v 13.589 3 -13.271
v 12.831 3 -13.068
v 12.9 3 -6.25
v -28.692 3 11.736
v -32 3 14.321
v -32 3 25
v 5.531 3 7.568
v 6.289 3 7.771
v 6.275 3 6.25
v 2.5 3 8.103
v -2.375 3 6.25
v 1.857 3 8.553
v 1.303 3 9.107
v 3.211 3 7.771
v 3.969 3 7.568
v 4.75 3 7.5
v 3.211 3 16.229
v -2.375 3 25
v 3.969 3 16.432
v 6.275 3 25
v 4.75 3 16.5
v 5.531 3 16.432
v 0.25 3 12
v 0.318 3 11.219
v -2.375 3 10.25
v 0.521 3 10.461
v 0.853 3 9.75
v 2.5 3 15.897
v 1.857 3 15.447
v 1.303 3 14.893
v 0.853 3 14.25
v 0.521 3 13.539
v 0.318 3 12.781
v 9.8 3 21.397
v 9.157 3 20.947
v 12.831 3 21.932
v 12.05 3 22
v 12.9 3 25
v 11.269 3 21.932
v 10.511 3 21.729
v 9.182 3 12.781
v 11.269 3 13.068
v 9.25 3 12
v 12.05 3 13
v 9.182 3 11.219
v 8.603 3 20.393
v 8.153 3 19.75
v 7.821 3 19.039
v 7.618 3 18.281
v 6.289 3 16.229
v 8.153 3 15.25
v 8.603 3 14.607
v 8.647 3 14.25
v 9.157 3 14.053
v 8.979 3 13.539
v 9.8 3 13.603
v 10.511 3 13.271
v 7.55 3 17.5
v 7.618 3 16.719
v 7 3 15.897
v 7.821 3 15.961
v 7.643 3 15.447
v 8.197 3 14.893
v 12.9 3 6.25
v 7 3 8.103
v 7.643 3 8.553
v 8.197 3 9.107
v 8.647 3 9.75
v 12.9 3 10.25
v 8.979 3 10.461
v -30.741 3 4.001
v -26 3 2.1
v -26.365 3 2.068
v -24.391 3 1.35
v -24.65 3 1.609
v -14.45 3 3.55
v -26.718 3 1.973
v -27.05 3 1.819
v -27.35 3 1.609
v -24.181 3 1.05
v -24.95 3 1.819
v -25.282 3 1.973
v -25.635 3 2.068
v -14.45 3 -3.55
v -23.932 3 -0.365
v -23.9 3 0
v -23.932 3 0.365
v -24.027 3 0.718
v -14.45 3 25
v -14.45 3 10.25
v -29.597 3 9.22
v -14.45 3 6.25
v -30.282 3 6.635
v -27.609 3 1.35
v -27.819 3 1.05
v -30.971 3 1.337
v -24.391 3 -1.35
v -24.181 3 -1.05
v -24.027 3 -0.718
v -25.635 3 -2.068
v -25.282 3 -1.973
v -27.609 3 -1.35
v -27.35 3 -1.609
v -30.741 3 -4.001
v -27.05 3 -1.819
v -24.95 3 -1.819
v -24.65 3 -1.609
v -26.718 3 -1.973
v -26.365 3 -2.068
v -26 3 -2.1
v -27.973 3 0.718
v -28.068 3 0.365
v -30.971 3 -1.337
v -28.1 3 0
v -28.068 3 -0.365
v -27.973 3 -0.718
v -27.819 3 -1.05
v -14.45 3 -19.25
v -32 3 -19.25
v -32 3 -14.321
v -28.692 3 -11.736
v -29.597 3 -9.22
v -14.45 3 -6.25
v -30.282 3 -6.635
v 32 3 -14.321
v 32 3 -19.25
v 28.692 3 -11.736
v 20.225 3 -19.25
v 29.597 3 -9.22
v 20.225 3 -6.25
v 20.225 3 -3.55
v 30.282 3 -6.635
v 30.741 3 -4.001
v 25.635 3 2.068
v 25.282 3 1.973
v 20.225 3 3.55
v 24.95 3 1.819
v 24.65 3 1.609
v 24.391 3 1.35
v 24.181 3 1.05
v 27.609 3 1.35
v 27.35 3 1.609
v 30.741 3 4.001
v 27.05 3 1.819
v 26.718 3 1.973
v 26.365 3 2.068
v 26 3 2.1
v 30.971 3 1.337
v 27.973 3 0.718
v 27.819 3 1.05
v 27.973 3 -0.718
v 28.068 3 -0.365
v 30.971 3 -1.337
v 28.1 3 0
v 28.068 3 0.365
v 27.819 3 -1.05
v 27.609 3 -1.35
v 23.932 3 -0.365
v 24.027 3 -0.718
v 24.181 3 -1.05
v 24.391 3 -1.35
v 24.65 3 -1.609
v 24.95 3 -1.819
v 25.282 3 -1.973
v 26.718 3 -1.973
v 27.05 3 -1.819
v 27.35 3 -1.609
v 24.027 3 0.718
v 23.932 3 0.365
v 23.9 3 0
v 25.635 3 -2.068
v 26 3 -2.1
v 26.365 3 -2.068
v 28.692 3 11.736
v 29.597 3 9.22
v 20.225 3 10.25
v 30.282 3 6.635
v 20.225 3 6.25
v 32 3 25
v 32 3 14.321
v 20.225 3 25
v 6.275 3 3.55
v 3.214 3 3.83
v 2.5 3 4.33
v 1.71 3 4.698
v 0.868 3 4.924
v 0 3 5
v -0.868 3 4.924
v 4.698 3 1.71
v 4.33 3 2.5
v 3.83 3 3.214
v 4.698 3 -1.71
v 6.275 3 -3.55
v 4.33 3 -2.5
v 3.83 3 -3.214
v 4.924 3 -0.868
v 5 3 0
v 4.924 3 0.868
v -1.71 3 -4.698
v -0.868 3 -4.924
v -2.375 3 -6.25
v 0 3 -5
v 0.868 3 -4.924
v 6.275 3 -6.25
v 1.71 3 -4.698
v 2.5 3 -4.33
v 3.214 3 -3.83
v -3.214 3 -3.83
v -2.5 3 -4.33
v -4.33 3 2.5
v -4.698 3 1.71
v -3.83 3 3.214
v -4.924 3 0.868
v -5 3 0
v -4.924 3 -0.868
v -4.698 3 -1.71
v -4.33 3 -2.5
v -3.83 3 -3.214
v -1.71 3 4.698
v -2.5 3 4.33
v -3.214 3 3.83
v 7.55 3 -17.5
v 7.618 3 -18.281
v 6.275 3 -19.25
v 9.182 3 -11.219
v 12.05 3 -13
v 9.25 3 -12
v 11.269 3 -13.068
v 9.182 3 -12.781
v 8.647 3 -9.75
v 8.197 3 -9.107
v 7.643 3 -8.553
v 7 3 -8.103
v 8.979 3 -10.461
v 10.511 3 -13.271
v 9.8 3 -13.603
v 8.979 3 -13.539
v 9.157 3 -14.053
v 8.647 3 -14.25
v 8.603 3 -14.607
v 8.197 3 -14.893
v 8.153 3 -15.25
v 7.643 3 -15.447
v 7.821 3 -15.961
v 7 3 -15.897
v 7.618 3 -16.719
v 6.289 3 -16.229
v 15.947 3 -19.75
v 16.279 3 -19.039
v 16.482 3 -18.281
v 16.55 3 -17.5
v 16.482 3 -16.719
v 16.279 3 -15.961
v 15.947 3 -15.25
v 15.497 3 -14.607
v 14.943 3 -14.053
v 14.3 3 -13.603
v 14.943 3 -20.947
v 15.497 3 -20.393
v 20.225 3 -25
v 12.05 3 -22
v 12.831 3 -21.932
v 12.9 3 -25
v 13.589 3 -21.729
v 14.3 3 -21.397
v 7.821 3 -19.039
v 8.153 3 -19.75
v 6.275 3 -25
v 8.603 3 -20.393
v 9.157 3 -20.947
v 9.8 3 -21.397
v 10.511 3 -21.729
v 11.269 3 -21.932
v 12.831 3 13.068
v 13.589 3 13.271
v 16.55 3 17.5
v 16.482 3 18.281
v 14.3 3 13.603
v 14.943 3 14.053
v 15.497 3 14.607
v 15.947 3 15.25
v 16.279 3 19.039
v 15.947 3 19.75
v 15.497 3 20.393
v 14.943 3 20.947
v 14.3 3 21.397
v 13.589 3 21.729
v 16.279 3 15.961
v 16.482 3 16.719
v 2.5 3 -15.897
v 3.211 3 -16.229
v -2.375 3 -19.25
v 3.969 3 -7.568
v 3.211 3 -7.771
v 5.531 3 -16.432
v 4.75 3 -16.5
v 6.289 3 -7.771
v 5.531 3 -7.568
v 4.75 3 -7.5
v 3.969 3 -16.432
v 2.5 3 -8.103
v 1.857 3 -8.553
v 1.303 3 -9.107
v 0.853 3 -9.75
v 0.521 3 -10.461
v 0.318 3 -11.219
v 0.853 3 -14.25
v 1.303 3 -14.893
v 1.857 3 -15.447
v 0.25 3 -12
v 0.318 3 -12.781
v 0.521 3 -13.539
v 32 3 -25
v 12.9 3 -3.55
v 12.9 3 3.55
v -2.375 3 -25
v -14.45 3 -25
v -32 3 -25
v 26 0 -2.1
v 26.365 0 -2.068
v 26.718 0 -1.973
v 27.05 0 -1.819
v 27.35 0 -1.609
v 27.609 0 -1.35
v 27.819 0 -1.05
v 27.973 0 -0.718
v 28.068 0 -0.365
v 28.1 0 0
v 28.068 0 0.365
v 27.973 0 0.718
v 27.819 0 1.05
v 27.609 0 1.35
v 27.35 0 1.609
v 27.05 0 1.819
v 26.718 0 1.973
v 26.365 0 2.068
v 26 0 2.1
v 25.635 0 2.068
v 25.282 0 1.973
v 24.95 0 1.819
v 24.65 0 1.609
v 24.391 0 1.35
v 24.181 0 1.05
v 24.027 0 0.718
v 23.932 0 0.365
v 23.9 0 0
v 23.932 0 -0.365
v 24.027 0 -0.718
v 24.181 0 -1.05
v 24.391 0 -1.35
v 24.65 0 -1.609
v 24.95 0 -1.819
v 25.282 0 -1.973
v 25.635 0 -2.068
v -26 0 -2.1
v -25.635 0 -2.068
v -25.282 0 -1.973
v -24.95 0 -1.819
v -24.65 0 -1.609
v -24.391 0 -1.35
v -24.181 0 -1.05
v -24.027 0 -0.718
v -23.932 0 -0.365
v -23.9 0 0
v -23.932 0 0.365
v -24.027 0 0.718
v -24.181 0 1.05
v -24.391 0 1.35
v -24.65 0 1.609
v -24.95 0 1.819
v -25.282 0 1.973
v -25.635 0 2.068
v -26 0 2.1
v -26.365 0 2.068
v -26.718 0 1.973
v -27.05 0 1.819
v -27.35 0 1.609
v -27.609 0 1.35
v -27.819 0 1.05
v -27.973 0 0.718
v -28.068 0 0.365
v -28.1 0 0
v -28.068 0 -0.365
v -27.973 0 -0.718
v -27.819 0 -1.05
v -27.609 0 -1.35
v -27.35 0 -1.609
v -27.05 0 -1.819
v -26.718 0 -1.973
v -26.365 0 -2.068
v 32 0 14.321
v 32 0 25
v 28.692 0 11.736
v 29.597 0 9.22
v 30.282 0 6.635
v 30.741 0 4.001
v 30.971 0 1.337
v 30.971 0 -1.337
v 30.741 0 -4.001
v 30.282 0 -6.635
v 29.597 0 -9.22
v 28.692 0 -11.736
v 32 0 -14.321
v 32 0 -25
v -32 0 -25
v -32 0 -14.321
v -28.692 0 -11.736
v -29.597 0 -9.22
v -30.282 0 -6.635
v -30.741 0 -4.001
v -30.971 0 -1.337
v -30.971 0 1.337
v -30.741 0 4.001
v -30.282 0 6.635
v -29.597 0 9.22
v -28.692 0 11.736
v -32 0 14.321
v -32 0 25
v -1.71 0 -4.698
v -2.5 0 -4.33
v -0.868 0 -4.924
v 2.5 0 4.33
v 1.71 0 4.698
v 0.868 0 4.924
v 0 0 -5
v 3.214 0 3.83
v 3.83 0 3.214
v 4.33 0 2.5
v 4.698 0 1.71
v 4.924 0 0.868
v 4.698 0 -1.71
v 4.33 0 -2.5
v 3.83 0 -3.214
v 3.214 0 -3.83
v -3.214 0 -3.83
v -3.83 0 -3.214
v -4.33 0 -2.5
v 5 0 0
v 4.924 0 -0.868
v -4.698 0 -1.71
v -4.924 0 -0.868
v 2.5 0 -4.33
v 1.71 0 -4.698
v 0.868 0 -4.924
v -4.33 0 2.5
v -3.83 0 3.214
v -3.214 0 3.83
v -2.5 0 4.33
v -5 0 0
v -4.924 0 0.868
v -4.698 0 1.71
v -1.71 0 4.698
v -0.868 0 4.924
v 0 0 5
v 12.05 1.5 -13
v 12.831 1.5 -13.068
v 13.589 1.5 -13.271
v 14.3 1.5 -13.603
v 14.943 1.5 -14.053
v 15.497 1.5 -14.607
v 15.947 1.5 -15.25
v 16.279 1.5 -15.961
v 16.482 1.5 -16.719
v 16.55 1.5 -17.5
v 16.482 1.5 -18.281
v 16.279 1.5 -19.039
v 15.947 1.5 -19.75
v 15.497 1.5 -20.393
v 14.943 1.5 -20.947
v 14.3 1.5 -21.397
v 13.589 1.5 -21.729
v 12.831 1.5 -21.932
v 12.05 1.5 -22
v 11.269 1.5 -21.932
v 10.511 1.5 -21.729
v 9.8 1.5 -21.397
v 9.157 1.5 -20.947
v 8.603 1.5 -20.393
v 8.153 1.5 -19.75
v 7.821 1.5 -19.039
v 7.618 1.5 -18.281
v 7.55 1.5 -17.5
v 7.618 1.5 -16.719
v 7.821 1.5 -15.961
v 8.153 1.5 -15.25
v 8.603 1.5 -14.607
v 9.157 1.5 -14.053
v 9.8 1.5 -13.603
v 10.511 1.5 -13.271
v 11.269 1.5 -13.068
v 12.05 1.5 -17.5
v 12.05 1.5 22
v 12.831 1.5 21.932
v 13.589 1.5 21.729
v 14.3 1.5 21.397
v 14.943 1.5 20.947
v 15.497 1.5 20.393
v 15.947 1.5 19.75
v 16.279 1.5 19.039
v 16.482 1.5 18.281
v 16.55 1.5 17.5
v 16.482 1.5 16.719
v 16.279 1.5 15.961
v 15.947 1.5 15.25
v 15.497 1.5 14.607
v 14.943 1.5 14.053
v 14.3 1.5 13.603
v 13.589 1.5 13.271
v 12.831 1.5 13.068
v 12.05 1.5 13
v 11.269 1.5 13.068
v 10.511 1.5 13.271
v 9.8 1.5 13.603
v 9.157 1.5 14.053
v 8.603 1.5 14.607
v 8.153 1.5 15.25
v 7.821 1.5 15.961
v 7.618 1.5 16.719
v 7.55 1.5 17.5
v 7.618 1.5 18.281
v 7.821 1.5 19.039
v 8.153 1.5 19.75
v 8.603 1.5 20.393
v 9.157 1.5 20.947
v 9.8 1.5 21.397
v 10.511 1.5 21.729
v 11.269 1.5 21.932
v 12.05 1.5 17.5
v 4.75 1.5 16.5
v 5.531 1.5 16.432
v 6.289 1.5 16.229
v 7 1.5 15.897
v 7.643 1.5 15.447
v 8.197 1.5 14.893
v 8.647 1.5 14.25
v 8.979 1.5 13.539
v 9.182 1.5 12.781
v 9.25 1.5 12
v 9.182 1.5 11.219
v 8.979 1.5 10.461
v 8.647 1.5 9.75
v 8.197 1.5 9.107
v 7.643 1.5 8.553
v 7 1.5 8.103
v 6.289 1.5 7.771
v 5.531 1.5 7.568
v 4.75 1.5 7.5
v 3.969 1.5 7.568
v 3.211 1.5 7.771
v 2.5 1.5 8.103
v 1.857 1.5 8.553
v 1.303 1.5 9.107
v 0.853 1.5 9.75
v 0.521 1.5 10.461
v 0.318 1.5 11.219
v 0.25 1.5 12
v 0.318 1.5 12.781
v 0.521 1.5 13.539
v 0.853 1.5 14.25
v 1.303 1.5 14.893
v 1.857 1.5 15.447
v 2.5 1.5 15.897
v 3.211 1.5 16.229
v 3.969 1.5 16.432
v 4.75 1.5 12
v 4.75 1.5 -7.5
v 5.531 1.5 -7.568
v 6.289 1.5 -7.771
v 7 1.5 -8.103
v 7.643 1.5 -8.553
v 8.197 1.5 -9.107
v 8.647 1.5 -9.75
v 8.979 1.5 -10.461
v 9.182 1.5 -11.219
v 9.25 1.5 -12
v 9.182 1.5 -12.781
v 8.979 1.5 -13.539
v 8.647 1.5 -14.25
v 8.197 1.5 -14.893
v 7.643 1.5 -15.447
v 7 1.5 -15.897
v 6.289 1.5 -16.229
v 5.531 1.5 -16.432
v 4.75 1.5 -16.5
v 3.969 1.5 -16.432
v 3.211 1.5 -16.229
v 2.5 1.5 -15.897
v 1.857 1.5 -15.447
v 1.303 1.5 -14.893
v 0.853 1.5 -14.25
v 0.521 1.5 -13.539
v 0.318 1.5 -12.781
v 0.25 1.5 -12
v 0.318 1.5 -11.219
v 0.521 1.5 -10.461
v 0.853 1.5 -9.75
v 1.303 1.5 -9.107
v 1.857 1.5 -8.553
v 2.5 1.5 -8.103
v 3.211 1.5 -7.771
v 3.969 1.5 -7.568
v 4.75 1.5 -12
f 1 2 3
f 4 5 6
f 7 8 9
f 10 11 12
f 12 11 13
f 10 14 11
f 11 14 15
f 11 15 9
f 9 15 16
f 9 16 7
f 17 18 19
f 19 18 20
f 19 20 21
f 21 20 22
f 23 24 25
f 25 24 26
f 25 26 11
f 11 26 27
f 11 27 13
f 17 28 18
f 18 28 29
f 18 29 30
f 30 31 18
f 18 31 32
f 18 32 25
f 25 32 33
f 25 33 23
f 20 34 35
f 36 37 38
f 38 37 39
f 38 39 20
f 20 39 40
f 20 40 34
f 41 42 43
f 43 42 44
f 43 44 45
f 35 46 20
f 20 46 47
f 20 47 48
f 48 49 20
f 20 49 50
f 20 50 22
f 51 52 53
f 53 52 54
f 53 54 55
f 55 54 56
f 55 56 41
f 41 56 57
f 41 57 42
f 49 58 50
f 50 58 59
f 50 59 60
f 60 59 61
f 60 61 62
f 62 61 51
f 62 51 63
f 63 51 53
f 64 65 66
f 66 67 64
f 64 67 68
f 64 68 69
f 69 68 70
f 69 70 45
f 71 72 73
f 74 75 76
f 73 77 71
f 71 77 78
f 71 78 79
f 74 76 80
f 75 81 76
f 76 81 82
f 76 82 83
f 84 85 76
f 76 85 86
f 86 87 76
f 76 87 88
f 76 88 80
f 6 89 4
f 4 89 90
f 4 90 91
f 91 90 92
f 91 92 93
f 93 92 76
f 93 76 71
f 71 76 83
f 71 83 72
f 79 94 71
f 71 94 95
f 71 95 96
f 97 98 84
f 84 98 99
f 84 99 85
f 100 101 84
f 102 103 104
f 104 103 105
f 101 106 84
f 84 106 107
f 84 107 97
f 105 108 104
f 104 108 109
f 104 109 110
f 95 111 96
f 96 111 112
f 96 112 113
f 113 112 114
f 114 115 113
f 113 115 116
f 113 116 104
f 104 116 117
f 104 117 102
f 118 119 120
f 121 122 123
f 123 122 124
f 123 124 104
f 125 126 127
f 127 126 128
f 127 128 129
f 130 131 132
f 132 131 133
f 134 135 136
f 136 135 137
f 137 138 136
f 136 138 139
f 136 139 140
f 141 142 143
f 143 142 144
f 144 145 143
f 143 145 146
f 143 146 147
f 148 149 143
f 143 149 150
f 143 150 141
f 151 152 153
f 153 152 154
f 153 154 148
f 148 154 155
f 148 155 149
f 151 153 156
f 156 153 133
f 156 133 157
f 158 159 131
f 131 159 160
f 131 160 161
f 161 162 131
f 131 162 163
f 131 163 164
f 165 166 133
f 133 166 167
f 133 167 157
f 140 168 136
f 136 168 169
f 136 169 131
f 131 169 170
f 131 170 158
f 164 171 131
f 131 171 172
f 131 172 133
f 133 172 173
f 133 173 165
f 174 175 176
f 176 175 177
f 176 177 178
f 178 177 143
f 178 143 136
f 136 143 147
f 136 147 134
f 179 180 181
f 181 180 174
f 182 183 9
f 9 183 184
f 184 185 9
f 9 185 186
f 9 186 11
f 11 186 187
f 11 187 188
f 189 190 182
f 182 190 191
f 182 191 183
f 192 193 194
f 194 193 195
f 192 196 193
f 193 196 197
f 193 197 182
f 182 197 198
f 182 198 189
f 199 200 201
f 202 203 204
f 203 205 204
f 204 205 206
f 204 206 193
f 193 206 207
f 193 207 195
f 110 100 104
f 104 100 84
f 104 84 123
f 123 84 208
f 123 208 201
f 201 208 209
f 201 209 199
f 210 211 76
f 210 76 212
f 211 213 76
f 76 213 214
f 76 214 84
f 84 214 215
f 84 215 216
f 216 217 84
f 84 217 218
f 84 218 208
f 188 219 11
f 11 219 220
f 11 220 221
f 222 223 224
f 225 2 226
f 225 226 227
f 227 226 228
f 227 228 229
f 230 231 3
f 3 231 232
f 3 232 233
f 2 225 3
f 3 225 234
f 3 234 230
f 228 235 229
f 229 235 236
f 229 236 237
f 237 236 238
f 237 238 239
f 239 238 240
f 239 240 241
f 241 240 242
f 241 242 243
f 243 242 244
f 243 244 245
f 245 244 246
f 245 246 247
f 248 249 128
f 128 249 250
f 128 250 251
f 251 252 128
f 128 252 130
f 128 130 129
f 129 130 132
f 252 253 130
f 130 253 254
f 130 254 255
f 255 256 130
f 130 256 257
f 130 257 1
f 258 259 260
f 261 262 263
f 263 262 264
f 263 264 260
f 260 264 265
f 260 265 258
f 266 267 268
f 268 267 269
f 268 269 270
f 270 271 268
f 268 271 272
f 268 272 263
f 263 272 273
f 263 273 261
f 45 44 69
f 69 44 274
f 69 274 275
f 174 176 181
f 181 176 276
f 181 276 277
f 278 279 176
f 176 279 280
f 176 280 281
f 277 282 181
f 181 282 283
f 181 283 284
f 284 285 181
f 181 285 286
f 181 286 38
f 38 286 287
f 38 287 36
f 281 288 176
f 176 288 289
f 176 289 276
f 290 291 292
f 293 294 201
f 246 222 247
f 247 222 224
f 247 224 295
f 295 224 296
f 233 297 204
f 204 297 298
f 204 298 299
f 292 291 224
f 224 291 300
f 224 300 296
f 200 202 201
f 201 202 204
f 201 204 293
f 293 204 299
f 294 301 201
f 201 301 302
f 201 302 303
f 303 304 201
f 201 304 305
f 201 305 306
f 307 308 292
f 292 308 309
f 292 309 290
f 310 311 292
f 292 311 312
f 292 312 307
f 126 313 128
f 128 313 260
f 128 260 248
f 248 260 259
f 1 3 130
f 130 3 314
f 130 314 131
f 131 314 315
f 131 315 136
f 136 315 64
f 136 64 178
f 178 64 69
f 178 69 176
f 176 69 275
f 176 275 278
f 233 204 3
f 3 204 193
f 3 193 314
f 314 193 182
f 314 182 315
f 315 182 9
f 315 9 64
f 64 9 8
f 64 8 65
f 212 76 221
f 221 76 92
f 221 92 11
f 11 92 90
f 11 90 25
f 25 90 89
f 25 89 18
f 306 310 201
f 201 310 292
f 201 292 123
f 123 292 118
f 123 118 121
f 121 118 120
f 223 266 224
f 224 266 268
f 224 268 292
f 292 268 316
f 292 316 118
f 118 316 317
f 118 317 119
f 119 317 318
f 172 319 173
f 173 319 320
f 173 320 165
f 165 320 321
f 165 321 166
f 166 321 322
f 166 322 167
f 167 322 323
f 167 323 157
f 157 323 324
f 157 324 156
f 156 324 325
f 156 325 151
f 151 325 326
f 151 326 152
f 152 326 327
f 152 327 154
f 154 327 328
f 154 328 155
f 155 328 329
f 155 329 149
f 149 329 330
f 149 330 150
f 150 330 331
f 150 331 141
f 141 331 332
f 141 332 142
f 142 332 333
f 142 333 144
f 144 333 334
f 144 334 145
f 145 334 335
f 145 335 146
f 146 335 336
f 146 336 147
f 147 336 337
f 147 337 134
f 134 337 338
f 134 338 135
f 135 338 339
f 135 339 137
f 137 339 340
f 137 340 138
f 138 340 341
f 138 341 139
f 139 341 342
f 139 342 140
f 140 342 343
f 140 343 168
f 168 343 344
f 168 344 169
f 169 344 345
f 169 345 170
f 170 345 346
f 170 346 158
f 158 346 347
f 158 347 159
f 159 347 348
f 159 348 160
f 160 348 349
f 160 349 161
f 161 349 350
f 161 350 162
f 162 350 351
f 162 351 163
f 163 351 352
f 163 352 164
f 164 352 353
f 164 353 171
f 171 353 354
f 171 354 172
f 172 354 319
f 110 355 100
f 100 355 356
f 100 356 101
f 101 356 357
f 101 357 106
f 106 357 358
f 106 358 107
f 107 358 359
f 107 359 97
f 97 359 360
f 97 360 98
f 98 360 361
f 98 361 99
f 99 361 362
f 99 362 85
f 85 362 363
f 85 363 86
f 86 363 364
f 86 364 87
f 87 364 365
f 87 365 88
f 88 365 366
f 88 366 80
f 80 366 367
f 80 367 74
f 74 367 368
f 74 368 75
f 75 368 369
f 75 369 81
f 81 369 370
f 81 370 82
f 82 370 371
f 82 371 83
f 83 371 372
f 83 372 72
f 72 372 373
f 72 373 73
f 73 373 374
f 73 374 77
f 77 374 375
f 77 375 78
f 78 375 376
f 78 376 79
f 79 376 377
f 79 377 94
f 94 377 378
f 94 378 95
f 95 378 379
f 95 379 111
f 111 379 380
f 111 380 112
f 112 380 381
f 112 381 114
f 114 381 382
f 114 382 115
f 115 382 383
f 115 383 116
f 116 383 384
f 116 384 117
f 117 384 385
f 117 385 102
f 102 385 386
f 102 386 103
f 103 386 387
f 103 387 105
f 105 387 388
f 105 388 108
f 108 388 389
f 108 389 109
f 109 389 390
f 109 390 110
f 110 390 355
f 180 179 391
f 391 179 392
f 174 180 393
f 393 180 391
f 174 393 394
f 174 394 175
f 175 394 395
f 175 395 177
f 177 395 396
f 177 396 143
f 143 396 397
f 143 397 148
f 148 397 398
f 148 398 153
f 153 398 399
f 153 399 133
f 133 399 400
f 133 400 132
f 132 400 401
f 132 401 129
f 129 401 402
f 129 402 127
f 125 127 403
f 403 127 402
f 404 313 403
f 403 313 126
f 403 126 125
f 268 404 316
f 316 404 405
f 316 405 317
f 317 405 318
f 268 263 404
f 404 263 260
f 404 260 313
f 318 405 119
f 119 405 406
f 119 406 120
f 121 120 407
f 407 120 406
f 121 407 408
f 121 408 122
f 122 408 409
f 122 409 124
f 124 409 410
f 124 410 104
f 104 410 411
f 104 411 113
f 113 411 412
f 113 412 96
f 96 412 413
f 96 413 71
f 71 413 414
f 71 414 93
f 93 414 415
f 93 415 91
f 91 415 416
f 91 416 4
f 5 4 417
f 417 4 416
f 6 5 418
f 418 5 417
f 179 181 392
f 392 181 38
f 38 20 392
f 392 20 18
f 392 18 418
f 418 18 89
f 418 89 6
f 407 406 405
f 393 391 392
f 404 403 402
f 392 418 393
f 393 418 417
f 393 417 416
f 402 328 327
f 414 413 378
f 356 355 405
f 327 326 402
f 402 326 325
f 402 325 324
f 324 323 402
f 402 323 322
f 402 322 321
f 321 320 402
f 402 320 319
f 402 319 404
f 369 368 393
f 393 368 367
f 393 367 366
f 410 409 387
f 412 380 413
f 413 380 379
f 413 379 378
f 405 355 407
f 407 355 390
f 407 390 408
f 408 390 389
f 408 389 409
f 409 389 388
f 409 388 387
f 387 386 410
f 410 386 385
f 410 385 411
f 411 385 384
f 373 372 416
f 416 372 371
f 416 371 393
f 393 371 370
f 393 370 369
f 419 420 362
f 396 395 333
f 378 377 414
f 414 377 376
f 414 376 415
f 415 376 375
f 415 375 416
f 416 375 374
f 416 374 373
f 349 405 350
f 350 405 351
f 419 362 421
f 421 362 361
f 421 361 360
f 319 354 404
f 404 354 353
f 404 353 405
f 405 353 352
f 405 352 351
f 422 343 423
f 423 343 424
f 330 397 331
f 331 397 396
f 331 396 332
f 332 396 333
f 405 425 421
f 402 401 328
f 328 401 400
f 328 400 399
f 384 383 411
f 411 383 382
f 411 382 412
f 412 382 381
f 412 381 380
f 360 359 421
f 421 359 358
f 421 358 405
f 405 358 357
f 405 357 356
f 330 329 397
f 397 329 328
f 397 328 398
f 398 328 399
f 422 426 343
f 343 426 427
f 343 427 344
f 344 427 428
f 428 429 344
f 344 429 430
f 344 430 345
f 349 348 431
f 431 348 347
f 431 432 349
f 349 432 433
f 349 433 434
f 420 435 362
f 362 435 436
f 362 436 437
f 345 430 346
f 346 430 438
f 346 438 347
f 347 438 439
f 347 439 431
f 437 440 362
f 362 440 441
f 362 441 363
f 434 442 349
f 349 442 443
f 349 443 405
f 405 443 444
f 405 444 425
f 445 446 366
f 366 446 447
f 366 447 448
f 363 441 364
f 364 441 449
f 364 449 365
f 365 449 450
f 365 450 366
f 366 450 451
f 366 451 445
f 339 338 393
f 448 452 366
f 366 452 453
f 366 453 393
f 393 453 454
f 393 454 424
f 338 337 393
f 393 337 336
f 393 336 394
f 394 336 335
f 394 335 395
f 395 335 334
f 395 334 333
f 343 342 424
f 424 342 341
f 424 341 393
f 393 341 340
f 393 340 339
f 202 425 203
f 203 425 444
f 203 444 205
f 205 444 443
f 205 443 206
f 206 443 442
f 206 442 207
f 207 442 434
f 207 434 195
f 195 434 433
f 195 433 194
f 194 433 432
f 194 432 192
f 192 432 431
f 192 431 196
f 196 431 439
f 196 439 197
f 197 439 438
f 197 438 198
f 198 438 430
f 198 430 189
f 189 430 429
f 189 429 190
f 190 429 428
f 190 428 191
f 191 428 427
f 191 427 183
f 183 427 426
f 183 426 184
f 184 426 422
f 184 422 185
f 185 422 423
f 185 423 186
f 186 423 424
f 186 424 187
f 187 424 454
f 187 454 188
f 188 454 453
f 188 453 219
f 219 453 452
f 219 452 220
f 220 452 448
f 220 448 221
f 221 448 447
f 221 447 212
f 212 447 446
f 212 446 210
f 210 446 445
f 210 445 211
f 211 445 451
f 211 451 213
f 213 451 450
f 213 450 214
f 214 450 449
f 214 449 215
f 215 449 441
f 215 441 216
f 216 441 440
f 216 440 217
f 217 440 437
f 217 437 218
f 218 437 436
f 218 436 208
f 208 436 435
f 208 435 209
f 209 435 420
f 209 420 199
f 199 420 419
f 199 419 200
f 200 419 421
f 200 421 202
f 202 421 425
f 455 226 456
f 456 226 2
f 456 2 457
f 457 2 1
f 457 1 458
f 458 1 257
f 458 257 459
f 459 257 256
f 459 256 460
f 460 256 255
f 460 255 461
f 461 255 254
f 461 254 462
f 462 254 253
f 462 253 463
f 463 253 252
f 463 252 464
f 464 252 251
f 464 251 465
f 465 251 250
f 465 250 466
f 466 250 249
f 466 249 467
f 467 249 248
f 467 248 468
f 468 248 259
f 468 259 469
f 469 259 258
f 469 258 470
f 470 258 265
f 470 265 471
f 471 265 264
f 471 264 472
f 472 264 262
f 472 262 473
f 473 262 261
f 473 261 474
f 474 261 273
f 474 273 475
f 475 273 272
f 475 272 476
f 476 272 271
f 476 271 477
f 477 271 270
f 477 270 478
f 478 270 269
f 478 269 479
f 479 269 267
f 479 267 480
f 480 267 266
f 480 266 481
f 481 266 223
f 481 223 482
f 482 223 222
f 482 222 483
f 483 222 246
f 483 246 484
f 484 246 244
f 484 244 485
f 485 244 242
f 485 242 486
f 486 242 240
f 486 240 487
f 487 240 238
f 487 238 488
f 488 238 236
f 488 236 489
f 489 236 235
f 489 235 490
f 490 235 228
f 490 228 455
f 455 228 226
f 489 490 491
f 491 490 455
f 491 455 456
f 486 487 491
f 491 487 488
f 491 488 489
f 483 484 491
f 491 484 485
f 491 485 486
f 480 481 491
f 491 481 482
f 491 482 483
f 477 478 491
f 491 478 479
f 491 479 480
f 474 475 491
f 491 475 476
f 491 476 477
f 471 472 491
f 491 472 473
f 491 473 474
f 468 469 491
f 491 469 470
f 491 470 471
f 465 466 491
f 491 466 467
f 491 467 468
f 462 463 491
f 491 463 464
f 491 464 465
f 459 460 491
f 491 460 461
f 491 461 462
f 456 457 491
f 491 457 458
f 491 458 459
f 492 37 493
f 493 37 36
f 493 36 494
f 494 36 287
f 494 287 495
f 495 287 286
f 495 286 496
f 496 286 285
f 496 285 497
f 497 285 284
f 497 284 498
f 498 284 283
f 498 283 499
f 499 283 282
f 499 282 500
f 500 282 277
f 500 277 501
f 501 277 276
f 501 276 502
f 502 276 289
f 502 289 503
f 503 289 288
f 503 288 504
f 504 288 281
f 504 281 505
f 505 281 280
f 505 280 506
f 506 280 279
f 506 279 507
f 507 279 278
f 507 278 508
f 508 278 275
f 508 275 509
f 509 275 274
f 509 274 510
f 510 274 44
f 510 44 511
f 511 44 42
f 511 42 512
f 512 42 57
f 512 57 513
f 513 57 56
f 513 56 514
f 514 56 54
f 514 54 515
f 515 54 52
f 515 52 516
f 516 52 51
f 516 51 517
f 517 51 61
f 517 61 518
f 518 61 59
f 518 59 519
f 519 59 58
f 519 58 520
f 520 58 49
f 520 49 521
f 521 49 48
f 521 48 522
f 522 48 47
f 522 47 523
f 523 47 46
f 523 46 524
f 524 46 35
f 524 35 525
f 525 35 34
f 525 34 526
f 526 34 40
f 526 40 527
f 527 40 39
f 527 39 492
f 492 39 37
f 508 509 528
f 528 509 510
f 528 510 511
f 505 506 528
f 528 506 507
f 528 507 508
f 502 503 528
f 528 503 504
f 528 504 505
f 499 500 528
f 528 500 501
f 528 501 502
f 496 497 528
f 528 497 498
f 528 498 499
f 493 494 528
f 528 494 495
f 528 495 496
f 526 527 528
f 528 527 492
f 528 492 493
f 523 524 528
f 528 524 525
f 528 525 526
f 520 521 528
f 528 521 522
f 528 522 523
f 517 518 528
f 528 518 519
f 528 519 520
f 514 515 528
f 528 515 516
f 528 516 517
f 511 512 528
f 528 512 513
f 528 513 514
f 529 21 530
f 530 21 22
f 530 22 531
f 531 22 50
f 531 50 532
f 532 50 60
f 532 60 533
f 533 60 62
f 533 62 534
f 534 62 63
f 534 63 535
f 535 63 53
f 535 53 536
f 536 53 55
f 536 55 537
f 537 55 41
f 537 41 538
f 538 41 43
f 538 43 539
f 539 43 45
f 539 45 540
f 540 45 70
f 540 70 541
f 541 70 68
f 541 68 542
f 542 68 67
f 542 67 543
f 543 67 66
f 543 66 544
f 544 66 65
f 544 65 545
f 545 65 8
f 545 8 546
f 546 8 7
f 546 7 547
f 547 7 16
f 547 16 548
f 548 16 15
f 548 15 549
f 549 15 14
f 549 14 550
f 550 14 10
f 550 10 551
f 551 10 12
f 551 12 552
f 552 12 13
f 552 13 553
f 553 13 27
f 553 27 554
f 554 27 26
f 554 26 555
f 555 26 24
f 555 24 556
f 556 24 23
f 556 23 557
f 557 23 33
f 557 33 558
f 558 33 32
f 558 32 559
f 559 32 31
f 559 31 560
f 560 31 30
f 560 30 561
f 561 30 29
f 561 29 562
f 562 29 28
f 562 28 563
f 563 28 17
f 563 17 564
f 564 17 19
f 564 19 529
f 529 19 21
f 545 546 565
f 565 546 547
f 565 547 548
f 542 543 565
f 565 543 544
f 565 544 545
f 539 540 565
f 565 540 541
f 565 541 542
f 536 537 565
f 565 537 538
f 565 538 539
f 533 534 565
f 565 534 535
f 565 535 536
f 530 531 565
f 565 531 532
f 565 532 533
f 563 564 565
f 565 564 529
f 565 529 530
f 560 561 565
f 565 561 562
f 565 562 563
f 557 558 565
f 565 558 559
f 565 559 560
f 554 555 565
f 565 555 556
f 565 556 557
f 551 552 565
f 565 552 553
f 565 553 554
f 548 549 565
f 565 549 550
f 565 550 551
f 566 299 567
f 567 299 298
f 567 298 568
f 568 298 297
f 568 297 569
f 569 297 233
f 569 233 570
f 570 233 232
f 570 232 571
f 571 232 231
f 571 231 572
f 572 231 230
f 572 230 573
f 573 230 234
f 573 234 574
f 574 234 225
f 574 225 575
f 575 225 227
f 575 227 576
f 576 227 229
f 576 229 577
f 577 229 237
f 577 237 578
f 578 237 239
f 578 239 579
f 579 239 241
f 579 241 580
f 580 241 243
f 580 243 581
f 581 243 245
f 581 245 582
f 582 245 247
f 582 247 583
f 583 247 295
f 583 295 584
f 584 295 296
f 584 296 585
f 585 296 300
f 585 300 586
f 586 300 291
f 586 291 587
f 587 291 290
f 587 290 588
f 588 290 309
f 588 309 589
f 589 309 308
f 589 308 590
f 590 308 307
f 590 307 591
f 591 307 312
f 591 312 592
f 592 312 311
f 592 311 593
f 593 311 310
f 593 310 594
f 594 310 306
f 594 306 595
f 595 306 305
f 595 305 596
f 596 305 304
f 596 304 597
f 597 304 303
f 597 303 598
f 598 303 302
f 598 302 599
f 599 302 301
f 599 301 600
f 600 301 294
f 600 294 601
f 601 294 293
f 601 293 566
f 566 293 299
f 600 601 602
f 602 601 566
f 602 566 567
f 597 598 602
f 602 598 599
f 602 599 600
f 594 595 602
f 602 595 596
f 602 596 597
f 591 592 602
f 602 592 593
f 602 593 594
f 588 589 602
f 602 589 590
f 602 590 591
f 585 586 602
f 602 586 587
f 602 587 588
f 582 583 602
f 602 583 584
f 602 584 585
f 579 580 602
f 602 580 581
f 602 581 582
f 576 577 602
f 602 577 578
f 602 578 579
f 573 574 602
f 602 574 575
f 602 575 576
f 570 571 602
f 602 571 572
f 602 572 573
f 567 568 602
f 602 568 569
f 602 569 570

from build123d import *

# Parameters (mm, degrees)
SKETCH1_R           = 2.1
BOSS_EXTRUDE2_DEPTH = 3
SKETCH1_14_R        = 5
CUT_EXTRUDE2_DEPTH  = 10
SKETCH2_R           = 4.5
CUT_EXTRUDE3_DEPTH  = 1.5


with BuildPart() as part:
    # Sketch1 → Boss-Extrude2 (new body)
    with BuildSketch(Plane(origin=(0, 0, 0), x_dir=(1, 0, 0), z_dir=(0, 1, 0))):
        with BuildLine():
            Line((32, -25), (32, -14.320549047))
            Line((32, -14.320549047), (28.692414075, -11.736497543))
            ThreePointArc((28.692414075, -11.736497543), (31, 0), (28.692414075, 11.736497543))
            Line((28.692414075, 11.736497543), (32, 14.320549047))
            Line((32, 14.320549047), (32, 25))
            Line((32, 25), (-32, 25))
            Line((-32, 25), (-32, 14.320549047))
            Line((-32, 14.320549047), (-28.692414075, 11.736497543))
            ThreePointArc((-28.692414075, 11.736497543), (-31, 0), (-28.692414075, -11.736497543))
            Line((-28.692414075, -11.736497543), (-32, -14.320549047))
            Line((-32, -14.320549047), (-32, -25))
            Line((-32, -25), (32, -25))
        make_face()
        with Locations((26, 0)):
            Circle(SKETCH1_R, mode=Mode.SUBTRACT)
        with Locations((-26, 0)):
            Circle(SKETCH1_R, mode=Mode.SUBTRACT)
    extrude(amount=BOSS_EXTRUDE2_DEPTH)

    # Sketch1<14> → Cut-Extrude2 (cut)
    with BuildSketch(Plane(origin=(0, 0, 0), x_dir=(1, 0, 0), z_dir=(0, 1, 0))):
        Circle(SKETCH1_14_R)
    extrude(amount=CUT_EXTRUDE2_DEPTH, mode=Mode.SUBTRACT)

    # Sketch2 → Cut-Extrude3 (cut)
    with BuildSketch(Plane(origin=(0, 3, 0), x_dir=(1, 0, 0), z_dir=(0, 1, 0))):
        with Locations((4.75, 12)):
            Circle(SKETCH2_R)
        with Locations((12.05, 17.5)):
            Circle(SKETCH2_R)
        with Locations((4.75, -12)):
            Circle(SKETCH2_R)
        with Locations((12.05, -17.5)):
            Circle(SKETCH2_R)
    extrude(amount=-CUT_EXTRUDE3_DEPTH, mode=Mode.SUBTRACT)


solid = part.part
